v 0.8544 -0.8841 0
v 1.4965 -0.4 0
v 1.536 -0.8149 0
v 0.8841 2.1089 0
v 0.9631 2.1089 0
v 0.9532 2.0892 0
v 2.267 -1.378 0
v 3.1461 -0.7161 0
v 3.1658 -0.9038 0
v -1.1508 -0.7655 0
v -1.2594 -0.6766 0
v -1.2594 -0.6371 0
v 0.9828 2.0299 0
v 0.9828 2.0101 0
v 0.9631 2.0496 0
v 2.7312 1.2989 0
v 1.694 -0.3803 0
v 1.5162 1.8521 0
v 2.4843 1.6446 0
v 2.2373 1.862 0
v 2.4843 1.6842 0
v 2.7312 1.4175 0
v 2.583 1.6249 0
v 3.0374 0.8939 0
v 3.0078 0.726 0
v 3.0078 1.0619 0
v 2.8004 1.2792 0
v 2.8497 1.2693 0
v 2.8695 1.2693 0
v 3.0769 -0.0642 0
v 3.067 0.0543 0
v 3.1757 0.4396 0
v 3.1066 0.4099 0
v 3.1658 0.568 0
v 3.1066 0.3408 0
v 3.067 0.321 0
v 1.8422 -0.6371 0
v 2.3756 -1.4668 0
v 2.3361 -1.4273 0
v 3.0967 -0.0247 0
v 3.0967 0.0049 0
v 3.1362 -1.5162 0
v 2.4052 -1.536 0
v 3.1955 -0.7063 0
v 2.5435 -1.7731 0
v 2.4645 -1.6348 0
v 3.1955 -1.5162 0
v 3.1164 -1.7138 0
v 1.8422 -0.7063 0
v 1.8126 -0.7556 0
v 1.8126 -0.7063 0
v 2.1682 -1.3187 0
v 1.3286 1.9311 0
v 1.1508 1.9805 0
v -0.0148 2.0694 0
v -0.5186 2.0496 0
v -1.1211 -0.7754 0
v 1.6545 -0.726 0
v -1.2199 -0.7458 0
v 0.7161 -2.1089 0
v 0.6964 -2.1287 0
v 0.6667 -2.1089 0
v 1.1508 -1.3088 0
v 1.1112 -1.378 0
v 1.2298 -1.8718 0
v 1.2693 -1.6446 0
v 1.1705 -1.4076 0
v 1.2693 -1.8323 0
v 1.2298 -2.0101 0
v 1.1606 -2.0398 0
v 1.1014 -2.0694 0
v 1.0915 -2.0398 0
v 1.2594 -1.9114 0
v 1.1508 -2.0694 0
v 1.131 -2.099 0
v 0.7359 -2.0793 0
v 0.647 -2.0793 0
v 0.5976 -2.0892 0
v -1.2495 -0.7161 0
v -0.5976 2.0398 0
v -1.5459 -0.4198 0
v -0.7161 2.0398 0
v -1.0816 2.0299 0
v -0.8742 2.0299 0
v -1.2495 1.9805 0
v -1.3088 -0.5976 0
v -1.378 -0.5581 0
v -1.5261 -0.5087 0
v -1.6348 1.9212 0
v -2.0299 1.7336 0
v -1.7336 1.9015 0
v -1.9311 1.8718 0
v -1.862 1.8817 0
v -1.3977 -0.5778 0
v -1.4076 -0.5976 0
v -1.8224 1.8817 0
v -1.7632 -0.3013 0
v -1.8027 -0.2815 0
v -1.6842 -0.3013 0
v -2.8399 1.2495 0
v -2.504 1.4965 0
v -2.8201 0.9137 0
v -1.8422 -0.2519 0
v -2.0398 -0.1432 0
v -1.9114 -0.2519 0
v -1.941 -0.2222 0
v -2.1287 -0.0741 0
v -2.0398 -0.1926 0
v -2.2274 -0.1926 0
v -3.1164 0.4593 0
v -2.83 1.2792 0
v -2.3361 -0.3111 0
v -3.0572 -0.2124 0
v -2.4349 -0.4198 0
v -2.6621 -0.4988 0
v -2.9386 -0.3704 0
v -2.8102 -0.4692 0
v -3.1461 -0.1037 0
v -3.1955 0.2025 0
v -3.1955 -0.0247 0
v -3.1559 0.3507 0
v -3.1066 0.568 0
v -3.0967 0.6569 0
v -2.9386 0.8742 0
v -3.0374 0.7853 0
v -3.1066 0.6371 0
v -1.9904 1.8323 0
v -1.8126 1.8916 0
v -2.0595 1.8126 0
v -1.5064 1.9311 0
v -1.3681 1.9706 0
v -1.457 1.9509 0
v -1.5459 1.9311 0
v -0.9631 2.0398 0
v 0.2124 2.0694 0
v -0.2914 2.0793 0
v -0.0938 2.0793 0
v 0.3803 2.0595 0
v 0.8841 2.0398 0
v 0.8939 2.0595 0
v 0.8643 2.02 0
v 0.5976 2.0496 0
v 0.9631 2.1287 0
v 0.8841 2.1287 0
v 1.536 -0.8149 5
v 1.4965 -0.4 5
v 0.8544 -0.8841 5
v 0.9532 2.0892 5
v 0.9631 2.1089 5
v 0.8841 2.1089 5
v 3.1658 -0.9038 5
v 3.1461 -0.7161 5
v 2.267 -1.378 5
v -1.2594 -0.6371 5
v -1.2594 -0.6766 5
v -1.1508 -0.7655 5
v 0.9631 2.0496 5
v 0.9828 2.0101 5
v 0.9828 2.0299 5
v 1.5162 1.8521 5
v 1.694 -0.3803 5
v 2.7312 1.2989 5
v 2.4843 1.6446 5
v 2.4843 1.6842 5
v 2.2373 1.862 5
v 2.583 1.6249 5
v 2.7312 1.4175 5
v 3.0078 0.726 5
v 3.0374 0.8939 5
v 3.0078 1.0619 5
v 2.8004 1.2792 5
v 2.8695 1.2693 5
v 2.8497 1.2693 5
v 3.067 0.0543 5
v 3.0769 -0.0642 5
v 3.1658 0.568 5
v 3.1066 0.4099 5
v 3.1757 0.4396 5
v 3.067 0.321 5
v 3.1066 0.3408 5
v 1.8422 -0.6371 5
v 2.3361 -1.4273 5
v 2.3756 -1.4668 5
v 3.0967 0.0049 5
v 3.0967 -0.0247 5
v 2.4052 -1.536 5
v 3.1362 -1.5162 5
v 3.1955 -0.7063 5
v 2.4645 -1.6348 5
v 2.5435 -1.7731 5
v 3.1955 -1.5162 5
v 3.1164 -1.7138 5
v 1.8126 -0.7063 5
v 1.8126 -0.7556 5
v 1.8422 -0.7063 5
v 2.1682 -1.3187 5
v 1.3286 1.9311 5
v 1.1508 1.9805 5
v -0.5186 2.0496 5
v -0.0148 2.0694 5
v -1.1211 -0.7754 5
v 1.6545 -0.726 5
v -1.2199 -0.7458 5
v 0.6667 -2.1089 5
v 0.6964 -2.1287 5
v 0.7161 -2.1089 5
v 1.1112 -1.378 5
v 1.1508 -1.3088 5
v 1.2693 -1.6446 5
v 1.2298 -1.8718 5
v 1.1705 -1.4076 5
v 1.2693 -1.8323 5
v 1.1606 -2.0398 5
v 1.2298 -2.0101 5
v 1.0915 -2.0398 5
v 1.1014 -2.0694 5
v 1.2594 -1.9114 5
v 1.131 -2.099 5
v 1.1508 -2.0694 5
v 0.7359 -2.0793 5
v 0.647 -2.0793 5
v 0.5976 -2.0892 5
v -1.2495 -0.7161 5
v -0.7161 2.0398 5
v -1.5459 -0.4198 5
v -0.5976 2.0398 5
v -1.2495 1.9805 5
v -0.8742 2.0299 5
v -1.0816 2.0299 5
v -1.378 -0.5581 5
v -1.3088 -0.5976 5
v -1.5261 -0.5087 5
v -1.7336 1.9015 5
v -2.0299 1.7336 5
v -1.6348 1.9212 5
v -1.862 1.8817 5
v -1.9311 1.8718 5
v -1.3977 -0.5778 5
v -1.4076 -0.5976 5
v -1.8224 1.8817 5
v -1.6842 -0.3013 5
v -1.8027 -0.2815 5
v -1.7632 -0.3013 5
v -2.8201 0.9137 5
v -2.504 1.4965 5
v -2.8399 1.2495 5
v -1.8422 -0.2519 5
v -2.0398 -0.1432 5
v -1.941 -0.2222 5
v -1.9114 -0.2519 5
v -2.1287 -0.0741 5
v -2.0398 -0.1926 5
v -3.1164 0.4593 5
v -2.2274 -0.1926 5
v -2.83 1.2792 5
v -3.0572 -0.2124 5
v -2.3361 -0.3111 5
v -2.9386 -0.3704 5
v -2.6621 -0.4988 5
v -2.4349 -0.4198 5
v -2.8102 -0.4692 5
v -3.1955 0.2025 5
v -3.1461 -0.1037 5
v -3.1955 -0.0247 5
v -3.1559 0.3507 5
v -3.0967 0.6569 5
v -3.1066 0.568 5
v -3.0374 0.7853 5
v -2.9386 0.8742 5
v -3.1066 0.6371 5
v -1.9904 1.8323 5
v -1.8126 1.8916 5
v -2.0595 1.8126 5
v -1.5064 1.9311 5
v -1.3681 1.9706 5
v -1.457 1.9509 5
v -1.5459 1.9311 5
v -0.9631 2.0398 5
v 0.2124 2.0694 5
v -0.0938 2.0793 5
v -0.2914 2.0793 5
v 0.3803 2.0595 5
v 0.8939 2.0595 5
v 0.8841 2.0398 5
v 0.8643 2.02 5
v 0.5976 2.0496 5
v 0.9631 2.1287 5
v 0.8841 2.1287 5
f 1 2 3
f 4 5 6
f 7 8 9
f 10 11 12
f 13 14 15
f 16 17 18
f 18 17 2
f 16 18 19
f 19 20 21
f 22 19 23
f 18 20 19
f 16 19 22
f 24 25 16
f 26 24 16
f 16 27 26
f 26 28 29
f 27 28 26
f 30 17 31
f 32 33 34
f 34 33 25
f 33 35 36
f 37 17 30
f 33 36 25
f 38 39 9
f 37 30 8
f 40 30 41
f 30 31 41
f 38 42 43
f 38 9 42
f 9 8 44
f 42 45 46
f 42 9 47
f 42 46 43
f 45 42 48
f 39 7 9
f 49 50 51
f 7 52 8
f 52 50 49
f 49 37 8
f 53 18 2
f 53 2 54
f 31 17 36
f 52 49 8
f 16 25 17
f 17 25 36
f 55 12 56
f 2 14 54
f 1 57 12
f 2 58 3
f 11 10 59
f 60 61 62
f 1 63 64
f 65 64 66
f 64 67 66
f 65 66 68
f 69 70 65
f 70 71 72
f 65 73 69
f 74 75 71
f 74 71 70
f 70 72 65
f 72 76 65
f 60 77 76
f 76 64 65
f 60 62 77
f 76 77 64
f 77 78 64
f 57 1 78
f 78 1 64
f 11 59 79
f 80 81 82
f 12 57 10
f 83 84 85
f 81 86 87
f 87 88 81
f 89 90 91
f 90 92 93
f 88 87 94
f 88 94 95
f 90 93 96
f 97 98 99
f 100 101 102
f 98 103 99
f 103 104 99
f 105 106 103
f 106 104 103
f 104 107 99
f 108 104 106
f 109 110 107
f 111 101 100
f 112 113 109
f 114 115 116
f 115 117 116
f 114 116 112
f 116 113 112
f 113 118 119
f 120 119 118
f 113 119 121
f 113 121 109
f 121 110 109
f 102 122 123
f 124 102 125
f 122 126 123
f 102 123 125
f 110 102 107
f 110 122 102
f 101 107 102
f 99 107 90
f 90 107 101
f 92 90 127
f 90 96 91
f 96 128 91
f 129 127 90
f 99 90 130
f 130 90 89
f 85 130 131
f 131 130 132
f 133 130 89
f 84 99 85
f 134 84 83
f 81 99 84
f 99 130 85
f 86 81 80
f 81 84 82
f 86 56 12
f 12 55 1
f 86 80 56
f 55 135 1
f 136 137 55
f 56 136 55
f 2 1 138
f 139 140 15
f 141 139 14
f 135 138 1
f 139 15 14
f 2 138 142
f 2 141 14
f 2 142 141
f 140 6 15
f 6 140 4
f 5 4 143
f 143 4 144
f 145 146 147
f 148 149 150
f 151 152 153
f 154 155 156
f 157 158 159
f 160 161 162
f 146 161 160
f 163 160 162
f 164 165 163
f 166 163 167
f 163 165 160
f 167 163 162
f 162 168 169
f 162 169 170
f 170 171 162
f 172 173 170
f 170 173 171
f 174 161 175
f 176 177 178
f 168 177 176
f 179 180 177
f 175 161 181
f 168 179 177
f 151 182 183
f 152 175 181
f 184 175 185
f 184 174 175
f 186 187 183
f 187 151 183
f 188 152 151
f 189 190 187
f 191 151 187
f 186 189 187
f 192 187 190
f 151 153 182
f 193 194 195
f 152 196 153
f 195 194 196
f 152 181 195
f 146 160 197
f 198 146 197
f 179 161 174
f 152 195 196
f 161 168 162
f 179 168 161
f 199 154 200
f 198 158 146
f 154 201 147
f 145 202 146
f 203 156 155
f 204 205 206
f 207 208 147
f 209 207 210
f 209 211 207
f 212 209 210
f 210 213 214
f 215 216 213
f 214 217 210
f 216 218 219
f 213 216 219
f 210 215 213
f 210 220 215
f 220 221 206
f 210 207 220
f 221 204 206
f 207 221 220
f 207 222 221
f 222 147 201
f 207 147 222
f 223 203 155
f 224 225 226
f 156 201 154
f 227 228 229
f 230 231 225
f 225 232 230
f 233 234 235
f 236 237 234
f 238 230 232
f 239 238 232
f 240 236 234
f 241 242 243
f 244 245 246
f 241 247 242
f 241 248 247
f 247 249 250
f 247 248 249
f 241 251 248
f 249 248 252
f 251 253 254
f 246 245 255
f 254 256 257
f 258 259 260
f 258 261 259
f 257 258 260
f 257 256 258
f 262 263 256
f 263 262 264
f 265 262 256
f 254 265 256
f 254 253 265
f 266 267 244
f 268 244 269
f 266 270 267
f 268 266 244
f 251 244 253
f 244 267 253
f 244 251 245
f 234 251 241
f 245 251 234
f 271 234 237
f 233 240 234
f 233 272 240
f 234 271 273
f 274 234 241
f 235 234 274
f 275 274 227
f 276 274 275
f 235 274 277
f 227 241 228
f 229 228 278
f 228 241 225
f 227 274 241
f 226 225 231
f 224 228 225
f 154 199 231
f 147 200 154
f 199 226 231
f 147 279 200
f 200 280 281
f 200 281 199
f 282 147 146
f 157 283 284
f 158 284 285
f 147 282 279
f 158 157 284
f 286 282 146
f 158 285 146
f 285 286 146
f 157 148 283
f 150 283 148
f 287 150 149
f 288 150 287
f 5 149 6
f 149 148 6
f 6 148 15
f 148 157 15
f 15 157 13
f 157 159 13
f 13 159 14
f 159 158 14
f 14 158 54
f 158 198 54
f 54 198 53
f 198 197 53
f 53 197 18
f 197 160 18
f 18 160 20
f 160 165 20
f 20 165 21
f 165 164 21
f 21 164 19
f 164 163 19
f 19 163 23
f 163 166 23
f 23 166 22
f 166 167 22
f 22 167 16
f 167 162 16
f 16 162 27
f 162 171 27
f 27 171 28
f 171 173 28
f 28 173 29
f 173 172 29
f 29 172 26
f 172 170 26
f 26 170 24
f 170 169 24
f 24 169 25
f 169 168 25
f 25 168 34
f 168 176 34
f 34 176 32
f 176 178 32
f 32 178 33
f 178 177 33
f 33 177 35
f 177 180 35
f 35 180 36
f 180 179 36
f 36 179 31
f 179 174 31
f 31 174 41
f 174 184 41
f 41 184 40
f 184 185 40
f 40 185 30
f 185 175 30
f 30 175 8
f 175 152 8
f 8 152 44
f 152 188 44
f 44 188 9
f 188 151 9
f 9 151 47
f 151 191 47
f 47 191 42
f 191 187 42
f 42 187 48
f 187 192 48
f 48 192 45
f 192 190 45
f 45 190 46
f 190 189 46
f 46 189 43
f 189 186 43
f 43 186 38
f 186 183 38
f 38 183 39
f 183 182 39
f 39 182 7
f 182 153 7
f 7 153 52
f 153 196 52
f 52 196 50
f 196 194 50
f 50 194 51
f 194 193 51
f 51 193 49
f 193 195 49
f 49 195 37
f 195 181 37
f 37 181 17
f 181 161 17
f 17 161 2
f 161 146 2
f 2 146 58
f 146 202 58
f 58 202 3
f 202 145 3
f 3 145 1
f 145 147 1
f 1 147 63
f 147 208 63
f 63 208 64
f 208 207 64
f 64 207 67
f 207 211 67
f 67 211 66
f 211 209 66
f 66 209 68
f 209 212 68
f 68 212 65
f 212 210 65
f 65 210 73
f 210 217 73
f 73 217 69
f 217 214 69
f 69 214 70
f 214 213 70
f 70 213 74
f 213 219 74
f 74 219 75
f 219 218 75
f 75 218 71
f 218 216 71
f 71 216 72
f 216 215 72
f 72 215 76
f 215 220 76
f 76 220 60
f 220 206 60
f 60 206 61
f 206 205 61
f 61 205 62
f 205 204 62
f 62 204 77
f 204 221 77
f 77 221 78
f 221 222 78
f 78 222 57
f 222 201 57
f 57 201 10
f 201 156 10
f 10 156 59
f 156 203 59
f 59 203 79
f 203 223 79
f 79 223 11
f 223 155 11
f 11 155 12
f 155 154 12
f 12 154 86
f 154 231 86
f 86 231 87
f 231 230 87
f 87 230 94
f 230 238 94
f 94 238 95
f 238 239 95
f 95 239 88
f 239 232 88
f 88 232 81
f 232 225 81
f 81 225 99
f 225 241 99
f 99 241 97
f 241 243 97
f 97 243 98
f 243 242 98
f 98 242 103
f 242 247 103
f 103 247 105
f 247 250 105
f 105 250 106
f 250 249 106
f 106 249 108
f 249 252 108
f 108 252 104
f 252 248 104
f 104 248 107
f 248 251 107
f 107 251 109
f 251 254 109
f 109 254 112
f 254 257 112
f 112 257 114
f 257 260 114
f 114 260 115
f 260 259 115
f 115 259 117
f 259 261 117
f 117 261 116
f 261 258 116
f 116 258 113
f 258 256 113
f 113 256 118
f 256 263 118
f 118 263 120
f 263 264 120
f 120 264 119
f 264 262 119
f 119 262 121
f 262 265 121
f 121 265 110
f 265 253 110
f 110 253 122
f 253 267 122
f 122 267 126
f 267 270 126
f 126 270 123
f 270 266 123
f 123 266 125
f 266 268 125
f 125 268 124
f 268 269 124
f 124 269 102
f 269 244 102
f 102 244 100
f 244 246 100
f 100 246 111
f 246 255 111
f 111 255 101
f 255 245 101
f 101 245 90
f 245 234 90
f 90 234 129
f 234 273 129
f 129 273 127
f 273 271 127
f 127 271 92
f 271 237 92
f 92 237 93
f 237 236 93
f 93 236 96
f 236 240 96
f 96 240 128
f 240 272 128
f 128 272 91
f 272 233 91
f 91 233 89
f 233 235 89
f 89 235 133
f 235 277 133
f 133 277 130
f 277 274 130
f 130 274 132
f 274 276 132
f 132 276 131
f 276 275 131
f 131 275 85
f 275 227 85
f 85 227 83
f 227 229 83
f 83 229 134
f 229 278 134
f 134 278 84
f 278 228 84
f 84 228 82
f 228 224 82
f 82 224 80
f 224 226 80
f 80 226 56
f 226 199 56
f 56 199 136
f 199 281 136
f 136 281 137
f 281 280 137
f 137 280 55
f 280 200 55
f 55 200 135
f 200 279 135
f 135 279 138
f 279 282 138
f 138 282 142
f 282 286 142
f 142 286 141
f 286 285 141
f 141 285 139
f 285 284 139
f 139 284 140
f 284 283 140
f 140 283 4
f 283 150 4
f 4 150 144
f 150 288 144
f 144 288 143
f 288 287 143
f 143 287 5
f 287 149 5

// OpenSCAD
// Module names are of the form poly_<inkscape-path-id>().  As a result,
// you can associate a polygon in this OpenSCAD program with the corresponding
// SVG element in the Inkscape document by looking for the XML element with
// the attribute id="inkscape-path-id".

// fudge value is used to ensure that subtracted solids are a tad taller
// in the z dimension than the polygon being subtracted from.  This helps
// keep the resulting .stl file manifold.
fudge = 0.1;

module poly_path4278(h)
{
  scale([25.4/90, -25.4/90, 1]) union()
  {
    linear_extrude(height=h)
      polygon([[-10.027500,-4.532500],[-8.872500,-5.302500],[-7.192500,-6.142500],[-7.297500,-6.422500],[-7.052500,-6.492500],[-6.842500,-6.632500],[-6.597500,-6.667500],[-6.457500,-6.667500],[-6.422500,-6.702500],[-6.142500,-6.737500],[-5.792500,-6.807500],[-5.477500,-6.842500],[-5.337500,-6.842500],[-5.162500,-6.912500],[-4.847500,-6.982500],[-4.427500,-7.017500],[-3.832500,-7.192500],[-3.412500,-7.227500],[-3.097500,-7.192500],[-2.537500,-7.227500],[-2.117500,-7.227500],[-1.837500,-7.262500],[-1.032500,-7.367500],[-0.332500,-7.367500],[-0.052500,-7.332500],[0.297500,-7.332500],[0.752500,-7.332500],[1.347500,-7.297500],[2.117500,-7.262500],[3.062500,-7.157500],[3.132500,-7.227500],[3.167500,-7.297500],[3.132500,-7.472500],[3.132500,-7.542500],[3.412500,-7.542500],[3.412500,-7.472500],[3.377500,-7.402500],[3.412500,-7.262500],[3.482500,-7.192500],[3.482500,-7.122500],[4.077500,-7.017500],[4.707500,-6.842500],[5.372500,-6.562500],[7.927500,-6.597500],[8.802500,-5.967500],[8.802500,-5.827500],[8.977500,-5.792500],[9.152500,-5.757500],[9.677500,-5.022500],[9.677500,-4.602500],[9.922500,-4.532500],[10.097500,-4.497500],[10.167500,-4.497500],[10.657500,-3.762500],[10.762500,-3.167500],[10.657500,-2.572500],[11.217500,-2.012500],[11.252500,-1.557500],[11.007500,-1.452500],[11.007500,-1.207500],[10.867500,-1.137500],[10.867500,-0.192500],[10.972500,-0.017500],[10.972500,0.087500],[10.902500,0.227500],[11.147500,2.537500],[11.322500,2.502500],[11.217500,3.202500],[11.322500,5.372500],[11.112500,5.372500],[11.042500,6.072500],[9.012500,6.282500],[8.732500,5.792500],[8.522500,5.442500],[8.417500,5.197500],[8.277500,5.057500],[8.032500,4.882500],[7.682500,4.672500],[6.422500,2.677500],[6.422500,2.502500],[6.527500,2.502500],[6.527500,2.257500],[6.002500,1.347500],[5.302500,1.417500],[5.862500,2.572500],[5.442500,2.887500],[3.027500,3.132500],[4.077500,4.637500],[3.937500,4.882500],[4.147500,4.987500],[4.497500,5.827500],[4.497500,6.492500],[4.357500,6.632500],[4.462500,6.772500],[4.357500,7.122500],[4.112500,7.227500],[4.077500,7.332500],[4.007500,7.437500],[3.902500,7.332500],[3.867500,7.227500],[2.607500,7.367500],[2.537500,7.472500],[2.467500,7.542500],[2.362500,7.472500],[2.292500,7.367500],[2.117500,7.402500],[-3.972500,2.747500],[-4.077500,2.712500],[-4.322500,2.642500],[-4.427500,2.537500],[-4.462500,2.397500],[-4.462500,2.257500],[-4.637500,2.117500],[-4.882500,1.977500],[-4.952500,2.047500],[-4.987500,2.117500],[-5.407500,1.802500],[-5.477500,1.487500],[-5.722500,1.277500],[-5.967500,1.067500],[-6.247500,1.067500],[-6.387500,0.997500],[-6.527500,0.892500],[-6.772500,0.892500],[-6.877500,0.787500],[-7.227500,0.682500],[-7.227500,0.507500],[-7.542500,0.262500],[-7.892500,0.682500],[-8.277500,1.102500],[-8.627500,1.487500],[-9.432500,1.767500],[-9.957500,1.662500],[-10.412500,1.312500],[-10.832500,0.752500],[-11.147500,0.367500],[-11.322500,0.087500],[-11.322500,-0.717500],[-11.182500,-1.242500],[-11.042500,-1.627500],[-11.007500,-2.012500],[-11.007500,-2.257500],[-10.972500,-2.327500],[-10.762500,-2.782500],[-10.412500,-3.097500],[-9.992500,-3.237500],[-10.062500,-4.427500],[-10.027500,-4.532500]]);
  }
}

poly_path4278(5);
